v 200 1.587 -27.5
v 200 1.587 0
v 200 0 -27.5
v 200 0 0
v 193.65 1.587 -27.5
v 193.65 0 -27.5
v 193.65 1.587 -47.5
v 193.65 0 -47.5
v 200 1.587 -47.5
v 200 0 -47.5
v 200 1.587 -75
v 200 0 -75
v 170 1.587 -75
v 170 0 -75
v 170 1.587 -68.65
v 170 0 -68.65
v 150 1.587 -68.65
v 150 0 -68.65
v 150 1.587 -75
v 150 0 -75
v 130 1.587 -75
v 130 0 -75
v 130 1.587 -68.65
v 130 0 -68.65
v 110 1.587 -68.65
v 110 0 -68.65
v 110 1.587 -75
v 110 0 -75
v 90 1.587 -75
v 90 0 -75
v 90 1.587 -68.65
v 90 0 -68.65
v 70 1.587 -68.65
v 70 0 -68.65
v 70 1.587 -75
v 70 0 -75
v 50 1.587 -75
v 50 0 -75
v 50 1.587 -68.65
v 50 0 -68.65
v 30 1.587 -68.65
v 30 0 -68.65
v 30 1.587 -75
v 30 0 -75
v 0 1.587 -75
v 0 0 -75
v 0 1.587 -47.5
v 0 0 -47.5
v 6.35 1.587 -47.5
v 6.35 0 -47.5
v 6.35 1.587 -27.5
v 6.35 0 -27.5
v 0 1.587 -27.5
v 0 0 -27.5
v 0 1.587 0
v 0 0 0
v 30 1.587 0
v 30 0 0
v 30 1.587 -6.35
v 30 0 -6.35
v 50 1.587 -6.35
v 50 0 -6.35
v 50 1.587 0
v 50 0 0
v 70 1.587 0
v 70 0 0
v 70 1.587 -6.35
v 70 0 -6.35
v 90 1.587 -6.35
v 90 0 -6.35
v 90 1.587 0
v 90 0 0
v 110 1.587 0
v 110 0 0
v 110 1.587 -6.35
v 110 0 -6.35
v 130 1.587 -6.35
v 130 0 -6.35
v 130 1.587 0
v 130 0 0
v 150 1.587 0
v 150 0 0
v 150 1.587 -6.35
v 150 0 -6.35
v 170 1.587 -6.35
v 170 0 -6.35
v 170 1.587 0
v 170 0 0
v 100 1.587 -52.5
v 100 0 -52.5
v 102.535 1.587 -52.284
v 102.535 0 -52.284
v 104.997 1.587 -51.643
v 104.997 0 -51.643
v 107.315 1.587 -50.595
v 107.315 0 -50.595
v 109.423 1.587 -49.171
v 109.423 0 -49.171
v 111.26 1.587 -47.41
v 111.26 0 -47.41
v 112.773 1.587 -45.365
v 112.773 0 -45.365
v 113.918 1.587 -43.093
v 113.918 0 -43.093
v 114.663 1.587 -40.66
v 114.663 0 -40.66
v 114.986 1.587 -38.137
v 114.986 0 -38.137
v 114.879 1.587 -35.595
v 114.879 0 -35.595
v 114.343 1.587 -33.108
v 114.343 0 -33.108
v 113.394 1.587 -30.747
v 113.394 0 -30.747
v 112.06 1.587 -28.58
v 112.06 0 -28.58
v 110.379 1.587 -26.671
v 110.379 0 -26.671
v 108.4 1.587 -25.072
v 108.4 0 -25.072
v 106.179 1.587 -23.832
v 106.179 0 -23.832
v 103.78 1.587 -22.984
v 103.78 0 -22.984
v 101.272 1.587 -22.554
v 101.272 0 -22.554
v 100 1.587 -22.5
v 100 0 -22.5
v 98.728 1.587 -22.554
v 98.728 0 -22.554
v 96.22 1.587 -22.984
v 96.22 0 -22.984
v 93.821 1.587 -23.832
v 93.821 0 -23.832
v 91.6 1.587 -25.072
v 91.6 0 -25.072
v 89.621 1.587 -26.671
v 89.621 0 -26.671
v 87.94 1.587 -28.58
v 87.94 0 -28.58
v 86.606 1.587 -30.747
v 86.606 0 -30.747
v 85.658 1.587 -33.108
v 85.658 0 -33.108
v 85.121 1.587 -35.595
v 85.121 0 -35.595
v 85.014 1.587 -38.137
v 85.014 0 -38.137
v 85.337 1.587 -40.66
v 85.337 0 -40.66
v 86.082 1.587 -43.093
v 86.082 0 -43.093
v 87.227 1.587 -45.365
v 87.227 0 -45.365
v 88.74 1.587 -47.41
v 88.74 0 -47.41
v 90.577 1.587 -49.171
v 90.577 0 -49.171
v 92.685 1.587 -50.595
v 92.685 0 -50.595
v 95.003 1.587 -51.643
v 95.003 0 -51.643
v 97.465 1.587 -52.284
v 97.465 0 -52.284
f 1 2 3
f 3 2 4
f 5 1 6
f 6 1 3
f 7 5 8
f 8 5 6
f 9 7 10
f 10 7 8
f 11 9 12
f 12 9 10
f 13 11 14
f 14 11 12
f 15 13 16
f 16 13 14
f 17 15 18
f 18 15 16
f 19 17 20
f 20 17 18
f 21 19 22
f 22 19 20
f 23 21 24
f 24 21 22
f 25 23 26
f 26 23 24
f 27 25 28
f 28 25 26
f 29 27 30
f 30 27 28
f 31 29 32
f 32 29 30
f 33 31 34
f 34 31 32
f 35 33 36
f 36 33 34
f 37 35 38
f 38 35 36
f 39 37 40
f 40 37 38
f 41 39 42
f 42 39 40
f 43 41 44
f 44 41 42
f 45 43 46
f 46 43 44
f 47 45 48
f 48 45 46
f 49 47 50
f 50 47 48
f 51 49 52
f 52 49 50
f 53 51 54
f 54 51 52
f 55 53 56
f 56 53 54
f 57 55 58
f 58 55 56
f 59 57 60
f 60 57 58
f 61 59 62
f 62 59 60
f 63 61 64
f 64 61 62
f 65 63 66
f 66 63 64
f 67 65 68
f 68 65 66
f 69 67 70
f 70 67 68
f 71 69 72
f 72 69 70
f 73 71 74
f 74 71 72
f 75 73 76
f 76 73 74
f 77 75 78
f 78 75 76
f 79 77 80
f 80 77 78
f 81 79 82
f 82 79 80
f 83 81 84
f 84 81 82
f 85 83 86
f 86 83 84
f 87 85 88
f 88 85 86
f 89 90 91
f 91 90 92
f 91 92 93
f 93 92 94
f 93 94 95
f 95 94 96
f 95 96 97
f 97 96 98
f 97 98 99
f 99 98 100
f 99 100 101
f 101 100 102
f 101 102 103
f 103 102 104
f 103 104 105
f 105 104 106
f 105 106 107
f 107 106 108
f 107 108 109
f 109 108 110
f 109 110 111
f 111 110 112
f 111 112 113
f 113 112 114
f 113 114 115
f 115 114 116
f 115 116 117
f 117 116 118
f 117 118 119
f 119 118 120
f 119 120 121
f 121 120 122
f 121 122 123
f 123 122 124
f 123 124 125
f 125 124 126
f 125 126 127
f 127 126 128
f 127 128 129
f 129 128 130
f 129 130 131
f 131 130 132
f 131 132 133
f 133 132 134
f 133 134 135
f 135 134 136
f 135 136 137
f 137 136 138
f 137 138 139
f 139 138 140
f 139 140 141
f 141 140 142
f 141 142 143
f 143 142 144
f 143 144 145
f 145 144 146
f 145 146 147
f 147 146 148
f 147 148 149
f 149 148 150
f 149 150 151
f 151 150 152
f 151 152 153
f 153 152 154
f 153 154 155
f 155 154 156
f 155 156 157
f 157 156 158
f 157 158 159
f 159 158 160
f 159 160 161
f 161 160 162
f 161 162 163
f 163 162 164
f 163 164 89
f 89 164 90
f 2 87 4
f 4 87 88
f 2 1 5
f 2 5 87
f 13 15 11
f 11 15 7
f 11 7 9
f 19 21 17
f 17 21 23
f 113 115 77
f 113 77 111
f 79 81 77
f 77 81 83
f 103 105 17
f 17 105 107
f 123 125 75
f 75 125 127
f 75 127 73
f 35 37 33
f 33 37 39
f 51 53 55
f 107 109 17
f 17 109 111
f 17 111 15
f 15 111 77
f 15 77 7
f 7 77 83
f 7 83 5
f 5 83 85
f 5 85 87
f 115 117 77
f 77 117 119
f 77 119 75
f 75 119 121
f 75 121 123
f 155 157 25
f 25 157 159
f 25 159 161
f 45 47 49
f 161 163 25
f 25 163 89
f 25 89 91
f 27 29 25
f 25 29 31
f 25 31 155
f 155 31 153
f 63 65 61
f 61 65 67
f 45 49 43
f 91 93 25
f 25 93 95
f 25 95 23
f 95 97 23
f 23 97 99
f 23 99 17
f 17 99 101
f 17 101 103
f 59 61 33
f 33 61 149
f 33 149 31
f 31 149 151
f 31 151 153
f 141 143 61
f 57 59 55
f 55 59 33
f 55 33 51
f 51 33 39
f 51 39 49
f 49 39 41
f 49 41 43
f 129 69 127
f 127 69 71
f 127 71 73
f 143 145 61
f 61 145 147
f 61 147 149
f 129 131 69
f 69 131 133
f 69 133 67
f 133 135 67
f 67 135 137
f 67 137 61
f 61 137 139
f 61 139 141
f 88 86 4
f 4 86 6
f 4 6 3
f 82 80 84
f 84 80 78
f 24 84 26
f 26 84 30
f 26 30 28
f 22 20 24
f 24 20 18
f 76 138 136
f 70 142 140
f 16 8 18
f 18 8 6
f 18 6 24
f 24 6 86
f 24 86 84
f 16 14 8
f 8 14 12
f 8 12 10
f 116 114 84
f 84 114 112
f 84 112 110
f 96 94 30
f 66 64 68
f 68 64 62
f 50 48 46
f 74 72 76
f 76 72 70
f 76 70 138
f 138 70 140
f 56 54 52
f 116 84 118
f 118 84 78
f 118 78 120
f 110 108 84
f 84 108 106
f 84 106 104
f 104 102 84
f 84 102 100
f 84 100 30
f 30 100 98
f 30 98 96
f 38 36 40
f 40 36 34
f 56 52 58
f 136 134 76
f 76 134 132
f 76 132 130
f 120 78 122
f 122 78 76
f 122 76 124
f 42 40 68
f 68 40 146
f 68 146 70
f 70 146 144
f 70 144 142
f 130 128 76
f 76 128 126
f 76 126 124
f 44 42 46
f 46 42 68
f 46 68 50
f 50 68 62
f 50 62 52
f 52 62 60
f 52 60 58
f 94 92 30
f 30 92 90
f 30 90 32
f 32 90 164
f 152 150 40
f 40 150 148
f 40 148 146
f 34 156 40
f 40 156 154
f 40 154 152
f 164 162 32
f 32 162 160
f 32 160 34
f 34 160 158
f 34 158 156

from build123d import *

# Parameters (mm, degrees)
SKETCH1_R           = 15
BOSS_EXTRUDE1_DEPTH = 1.5875


with BuildPart() as part:
    # Sketch1 → Boss-Extrude1 (new body)
    with BuildSketch(Plane(origin=(0, 0, 0), x_dir=(1, 0, 0), z_dir=(0, 1, 0))):
        Polygon((0, 27.5), (0, 0), (30, 0), (30, 6.35), (50, 6.35), (50, 0), (70, 0), (70, 6.35), (90, 6.35), (90, 0), (110, 0), (110, 6.35), (130, 6.35), (130, 0), (150, 0), (150, 6.35), (170, 6.35), (170, 0), (200, 0), (200, 27.5), (193.65, 27.5), (193.65, 47.5), (200, 47.5), (200, 75), (170, 75), (170, 68.65), (150, 68.65), (150, 75), (130, 75), (130, 68.65), (110, 68.65), (110, 75), (90, 75), (90, 68.65), (70, 68.65), (70, 75), (50, 75), (50, 68.65), (30, 68.65), (30, 75), (0, 75), (0, 47.5), (6.35, 47.5), (6.35, 27.5), align=None)
        with Locations((100, 37.5)):
            Circle(SKETCH1_R, mode=Mode.SUBTRACT)
    extrude(amount=BOSS_EXTRUDE1_DEPTH)


solid = part.part
